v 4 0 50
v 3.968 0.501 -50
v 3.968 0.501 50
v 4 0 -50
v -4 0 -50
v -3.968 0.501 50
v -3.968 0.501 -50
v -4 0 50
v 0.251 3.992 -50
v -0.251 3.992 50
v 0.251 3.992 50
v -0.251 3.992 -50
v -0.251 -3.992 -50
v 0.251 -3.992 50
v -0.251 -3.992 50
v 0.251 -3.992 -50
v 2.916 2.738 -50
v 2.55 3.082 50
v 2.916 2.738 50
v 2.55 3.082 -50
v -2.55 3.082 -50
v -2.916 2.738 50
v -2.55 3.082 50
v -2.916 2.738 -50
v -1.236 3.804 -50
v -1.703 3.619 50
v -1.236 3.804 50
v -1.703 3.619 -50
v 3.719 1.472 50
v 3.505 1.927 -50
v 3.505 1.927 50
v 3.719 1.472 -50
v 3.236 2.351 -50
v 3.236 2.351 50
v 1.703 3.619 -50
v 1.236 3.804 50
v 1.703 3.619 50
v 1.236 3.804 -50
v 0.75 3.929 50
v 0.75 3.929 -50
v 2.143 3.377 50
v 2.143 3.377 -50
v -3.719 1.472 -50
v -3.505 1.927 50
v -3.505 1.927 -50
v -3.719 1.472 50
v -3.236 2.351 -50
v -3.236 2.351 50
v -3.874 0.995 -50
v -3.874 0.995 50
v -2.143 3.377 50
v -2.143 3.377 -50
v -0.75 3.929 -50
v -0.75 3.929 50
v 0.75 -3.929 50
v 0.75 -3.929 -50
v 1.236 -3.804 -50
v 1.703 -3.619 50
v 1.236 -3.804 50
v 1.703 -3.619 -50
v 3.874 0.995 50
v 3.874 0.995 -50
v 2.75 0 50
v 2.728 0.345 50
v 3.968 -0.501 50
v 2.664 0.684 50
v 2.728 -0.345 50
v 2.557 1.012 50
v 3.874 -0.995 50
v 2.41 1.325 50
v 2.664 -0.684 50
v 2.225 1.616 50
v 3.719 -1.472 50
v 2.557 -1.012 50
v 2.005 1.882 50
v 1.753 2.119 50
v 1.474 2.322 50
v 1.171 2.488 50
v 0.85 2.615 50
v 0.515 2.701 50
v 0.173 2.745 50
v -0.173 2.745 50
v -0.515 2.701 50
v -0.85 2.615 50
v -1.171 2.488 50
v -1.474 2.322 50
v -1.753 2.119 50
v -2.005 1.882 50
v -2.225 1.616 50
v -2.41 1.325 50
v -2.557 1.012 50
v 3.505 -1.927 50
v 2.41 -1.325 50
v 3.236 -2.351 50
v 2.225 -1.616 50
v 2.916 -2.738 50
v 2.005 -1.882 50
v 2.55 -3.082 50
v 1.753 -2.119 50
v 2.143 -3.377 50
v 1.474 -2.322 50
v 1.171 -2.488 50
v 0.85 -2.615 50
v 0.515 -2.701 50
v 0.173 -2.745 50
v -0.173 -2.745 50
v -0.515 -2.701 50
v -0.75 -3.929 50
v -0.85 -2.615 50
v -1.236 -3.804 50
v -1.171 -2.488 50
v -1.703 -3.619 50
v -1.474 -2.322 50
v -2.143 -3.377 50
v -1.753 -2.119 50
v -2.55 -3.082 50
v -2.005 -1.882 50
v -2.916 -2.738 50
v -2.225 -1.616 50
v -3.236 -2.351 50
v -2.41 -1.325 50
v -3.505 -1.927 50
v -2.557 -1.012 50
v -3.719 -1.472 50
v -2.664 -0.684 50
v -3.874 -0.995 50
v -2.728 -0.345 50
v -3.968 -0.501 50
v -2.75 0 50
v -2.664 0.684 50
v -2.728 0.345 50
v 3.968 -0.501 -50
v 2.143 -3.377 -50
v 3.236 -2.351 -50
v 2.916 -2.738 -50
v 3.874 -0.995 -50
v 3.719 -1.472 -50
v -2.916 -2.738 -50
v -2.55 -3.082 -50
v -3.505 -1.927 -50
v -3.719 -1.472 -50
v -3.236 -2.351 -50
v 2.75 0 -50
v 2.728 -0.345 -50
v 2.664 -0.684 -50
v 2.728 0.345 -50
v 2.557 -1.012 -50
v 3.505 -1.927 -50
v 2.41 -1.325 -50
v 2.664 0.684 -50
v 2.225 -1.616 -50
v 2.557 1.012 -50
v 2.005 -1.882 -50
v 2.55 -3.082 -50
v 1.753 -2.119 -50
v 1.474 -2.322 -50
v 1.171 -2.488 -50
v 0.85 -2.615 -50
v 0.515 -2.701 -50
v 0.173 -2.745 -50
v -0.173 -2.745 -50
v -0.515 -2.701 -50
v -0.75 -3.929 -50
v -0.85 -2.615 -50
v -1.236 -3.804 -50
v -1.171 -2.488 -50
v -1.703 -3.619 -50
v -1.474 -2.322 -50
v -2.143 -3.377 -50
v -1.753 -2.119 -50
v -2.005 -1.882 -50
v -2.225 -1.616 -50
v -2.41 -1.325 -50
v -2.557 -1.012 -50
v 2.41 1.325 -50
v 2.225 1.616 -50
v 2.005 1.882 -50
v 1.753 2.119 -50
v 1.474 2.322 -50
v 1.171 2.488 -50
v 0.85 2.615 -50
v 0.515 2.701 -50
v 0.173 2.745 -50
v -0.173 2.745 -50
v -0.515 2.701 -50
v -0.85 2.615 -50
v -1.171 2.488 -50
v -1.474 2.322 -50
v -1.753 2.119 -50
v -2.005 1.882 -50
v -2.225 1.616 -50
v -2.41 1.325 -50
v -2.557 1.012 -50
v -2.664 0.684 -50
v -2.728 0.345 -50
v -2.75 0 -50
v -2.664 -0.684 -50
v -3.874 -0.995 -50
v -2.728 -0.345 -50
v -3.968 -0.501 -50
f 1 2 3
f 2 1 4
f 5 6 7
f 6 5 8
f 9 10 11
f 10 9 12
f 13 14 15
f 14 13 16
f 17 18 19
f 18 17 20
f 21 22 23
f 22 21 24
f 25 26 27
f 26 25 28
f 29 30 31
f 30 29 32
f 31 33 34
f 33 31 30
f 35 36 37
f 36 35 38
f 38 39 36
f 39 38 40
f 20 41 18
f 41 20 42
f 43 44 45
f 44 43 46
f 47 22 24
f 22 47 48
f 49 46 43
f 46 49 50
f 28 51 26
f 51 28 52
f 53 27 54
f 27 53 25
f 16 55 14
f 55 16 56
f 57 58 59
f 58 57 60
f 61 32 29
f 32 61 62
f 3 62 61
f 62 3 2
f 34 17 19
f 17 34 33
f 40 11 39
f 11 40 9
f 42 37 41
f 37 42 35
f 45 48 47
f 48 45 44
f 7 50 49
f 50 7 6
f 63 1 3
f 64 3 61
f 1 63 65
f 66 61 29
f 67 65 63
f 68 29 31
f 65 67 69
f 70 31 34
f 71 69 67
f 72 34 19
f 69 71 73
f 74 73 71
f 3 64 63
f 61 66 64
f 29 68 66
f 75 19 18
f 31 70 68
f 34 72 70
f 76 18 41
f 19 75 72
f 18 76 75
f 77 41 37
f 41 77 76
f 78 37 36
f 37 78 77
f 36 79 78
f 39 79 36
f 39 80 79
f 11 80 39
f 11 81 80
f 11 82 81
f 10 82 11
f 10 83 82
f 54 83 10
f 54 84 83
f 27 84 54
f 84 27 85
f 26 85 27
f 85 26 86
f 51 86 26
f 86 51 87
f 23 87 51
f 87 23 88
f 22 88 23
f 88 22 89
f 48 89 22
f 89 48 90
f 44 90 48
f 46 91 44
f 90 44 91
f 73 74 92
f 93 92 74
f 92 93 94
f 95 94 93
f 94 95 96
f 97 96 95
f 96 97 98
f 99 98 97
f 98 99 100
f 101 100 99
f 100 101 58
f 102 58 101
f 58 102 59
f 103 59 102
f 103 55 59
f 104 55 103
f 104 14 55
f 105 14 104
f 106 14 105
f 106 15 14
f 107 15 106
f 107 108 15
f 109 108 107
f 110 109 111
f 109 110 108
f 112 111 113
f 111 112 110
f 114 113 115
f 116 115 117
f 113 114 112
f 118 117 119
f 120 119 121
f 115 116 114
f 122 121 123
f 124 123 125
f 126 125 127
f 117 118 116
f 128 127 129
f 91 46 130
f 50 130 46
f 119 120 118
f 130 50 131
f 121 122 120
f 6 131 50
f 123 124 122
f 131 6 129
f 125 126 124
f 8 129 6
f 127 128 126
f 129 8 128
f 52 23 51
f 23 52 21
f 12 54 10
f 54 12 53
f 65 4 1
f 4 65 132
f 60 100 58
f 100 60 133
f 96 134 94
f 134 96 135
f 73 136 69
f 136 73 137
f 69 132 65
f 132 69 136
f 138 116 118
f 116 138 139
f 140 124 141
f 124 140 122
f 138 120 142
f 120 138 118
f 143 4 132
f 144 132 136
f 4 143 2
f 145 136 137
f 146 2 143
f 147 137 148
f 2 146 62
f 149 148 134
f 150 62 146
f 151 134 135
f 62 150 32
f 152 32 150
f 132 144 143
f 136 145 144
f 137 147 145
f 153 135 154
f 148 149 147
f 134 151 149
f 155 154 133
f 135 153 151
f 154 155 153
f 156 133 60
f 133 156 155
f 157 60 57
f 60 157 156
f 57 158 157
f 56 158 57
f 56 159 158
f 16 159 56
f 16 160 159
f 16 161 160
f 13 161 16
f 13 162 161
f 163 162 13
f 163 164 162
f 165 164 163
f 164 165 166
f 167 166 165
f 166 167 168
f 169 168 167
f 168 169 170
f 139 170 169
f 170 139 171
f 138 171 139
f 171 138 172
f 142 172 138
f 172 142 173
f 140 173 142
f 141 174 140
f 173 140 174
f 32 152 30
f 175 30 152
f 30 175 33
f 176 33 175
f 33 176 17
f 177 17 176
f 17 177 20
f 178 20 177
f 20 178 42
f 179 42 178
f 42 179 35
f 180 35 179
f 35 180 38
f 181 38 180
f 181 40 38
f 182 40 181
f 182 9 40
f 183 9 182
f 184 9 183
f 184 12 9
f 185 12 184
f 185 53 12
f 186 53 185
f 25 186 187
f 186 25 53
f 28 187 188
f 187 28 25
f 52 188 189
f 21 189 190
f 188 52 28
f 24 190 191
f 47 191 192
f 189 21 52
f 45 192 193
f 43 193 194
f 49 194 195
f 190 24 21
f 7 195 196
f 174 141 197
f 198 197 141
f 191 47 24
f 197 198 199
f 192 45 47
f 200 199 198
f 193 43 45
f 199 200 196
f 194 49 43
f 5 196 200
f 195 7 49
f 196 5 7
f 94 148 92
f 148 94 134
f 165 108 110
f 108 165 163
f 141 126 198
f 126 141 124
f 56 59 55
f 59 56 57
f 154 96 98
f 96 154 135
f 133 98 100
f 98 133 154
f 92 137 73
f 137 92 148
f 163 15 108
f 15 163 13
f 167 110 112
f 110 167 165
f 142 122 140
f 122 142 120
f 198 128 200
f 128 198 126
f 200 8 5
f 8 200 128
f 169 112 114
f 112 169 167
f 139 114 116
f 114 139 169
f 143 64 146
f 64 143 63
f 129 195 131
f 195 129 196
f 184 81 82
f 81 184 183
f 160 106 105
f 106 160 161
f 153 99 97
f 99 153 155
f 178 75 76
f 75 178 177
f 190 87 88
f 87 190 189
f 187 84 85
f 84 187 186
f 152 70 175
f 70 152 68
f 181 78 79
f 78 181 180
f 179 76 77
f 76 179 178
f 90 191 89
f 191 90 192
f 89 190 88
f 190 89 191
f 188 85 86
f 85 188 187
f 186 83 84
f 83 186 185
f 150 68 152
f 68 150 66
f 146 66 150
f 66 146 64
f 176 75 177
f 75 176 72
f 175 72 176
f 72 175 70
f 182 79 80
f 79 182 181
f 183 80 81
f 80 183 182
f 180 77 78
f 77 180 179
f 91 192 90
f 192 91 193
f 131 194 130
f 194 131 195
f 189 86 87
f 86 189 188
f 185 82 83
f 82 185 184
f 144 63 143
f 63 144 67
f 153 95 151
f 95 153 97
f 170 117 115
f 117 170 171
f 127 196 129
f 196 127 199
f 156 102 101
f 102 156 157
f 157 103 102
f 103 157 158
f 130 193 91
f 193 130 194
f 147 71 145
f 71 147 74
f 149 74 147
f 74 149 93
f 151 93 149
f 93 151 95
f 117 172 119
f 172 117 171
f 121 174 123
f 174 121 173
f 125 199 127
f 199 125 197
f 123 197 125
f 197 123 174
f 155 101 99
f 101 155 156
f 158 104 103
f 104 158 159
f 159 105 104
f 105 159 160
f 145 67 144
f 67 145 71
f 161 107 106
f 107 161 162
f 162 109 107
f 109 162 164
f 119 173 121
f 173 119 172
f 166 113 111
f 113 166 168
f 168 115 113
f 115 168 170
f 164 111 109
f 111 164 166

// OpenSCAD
$fn = 50;


difference() {
	union() {
		translate(v = [0, 0, -50.0000000000]) {
			cylinder(h = 100, r = 4.0000000000);
		}
	}
	union() {
		translate(v = [0, 0, -100.0000000000]) {
			cylinder(h = 200, r = 2.7500000000);
		}
	}
}
